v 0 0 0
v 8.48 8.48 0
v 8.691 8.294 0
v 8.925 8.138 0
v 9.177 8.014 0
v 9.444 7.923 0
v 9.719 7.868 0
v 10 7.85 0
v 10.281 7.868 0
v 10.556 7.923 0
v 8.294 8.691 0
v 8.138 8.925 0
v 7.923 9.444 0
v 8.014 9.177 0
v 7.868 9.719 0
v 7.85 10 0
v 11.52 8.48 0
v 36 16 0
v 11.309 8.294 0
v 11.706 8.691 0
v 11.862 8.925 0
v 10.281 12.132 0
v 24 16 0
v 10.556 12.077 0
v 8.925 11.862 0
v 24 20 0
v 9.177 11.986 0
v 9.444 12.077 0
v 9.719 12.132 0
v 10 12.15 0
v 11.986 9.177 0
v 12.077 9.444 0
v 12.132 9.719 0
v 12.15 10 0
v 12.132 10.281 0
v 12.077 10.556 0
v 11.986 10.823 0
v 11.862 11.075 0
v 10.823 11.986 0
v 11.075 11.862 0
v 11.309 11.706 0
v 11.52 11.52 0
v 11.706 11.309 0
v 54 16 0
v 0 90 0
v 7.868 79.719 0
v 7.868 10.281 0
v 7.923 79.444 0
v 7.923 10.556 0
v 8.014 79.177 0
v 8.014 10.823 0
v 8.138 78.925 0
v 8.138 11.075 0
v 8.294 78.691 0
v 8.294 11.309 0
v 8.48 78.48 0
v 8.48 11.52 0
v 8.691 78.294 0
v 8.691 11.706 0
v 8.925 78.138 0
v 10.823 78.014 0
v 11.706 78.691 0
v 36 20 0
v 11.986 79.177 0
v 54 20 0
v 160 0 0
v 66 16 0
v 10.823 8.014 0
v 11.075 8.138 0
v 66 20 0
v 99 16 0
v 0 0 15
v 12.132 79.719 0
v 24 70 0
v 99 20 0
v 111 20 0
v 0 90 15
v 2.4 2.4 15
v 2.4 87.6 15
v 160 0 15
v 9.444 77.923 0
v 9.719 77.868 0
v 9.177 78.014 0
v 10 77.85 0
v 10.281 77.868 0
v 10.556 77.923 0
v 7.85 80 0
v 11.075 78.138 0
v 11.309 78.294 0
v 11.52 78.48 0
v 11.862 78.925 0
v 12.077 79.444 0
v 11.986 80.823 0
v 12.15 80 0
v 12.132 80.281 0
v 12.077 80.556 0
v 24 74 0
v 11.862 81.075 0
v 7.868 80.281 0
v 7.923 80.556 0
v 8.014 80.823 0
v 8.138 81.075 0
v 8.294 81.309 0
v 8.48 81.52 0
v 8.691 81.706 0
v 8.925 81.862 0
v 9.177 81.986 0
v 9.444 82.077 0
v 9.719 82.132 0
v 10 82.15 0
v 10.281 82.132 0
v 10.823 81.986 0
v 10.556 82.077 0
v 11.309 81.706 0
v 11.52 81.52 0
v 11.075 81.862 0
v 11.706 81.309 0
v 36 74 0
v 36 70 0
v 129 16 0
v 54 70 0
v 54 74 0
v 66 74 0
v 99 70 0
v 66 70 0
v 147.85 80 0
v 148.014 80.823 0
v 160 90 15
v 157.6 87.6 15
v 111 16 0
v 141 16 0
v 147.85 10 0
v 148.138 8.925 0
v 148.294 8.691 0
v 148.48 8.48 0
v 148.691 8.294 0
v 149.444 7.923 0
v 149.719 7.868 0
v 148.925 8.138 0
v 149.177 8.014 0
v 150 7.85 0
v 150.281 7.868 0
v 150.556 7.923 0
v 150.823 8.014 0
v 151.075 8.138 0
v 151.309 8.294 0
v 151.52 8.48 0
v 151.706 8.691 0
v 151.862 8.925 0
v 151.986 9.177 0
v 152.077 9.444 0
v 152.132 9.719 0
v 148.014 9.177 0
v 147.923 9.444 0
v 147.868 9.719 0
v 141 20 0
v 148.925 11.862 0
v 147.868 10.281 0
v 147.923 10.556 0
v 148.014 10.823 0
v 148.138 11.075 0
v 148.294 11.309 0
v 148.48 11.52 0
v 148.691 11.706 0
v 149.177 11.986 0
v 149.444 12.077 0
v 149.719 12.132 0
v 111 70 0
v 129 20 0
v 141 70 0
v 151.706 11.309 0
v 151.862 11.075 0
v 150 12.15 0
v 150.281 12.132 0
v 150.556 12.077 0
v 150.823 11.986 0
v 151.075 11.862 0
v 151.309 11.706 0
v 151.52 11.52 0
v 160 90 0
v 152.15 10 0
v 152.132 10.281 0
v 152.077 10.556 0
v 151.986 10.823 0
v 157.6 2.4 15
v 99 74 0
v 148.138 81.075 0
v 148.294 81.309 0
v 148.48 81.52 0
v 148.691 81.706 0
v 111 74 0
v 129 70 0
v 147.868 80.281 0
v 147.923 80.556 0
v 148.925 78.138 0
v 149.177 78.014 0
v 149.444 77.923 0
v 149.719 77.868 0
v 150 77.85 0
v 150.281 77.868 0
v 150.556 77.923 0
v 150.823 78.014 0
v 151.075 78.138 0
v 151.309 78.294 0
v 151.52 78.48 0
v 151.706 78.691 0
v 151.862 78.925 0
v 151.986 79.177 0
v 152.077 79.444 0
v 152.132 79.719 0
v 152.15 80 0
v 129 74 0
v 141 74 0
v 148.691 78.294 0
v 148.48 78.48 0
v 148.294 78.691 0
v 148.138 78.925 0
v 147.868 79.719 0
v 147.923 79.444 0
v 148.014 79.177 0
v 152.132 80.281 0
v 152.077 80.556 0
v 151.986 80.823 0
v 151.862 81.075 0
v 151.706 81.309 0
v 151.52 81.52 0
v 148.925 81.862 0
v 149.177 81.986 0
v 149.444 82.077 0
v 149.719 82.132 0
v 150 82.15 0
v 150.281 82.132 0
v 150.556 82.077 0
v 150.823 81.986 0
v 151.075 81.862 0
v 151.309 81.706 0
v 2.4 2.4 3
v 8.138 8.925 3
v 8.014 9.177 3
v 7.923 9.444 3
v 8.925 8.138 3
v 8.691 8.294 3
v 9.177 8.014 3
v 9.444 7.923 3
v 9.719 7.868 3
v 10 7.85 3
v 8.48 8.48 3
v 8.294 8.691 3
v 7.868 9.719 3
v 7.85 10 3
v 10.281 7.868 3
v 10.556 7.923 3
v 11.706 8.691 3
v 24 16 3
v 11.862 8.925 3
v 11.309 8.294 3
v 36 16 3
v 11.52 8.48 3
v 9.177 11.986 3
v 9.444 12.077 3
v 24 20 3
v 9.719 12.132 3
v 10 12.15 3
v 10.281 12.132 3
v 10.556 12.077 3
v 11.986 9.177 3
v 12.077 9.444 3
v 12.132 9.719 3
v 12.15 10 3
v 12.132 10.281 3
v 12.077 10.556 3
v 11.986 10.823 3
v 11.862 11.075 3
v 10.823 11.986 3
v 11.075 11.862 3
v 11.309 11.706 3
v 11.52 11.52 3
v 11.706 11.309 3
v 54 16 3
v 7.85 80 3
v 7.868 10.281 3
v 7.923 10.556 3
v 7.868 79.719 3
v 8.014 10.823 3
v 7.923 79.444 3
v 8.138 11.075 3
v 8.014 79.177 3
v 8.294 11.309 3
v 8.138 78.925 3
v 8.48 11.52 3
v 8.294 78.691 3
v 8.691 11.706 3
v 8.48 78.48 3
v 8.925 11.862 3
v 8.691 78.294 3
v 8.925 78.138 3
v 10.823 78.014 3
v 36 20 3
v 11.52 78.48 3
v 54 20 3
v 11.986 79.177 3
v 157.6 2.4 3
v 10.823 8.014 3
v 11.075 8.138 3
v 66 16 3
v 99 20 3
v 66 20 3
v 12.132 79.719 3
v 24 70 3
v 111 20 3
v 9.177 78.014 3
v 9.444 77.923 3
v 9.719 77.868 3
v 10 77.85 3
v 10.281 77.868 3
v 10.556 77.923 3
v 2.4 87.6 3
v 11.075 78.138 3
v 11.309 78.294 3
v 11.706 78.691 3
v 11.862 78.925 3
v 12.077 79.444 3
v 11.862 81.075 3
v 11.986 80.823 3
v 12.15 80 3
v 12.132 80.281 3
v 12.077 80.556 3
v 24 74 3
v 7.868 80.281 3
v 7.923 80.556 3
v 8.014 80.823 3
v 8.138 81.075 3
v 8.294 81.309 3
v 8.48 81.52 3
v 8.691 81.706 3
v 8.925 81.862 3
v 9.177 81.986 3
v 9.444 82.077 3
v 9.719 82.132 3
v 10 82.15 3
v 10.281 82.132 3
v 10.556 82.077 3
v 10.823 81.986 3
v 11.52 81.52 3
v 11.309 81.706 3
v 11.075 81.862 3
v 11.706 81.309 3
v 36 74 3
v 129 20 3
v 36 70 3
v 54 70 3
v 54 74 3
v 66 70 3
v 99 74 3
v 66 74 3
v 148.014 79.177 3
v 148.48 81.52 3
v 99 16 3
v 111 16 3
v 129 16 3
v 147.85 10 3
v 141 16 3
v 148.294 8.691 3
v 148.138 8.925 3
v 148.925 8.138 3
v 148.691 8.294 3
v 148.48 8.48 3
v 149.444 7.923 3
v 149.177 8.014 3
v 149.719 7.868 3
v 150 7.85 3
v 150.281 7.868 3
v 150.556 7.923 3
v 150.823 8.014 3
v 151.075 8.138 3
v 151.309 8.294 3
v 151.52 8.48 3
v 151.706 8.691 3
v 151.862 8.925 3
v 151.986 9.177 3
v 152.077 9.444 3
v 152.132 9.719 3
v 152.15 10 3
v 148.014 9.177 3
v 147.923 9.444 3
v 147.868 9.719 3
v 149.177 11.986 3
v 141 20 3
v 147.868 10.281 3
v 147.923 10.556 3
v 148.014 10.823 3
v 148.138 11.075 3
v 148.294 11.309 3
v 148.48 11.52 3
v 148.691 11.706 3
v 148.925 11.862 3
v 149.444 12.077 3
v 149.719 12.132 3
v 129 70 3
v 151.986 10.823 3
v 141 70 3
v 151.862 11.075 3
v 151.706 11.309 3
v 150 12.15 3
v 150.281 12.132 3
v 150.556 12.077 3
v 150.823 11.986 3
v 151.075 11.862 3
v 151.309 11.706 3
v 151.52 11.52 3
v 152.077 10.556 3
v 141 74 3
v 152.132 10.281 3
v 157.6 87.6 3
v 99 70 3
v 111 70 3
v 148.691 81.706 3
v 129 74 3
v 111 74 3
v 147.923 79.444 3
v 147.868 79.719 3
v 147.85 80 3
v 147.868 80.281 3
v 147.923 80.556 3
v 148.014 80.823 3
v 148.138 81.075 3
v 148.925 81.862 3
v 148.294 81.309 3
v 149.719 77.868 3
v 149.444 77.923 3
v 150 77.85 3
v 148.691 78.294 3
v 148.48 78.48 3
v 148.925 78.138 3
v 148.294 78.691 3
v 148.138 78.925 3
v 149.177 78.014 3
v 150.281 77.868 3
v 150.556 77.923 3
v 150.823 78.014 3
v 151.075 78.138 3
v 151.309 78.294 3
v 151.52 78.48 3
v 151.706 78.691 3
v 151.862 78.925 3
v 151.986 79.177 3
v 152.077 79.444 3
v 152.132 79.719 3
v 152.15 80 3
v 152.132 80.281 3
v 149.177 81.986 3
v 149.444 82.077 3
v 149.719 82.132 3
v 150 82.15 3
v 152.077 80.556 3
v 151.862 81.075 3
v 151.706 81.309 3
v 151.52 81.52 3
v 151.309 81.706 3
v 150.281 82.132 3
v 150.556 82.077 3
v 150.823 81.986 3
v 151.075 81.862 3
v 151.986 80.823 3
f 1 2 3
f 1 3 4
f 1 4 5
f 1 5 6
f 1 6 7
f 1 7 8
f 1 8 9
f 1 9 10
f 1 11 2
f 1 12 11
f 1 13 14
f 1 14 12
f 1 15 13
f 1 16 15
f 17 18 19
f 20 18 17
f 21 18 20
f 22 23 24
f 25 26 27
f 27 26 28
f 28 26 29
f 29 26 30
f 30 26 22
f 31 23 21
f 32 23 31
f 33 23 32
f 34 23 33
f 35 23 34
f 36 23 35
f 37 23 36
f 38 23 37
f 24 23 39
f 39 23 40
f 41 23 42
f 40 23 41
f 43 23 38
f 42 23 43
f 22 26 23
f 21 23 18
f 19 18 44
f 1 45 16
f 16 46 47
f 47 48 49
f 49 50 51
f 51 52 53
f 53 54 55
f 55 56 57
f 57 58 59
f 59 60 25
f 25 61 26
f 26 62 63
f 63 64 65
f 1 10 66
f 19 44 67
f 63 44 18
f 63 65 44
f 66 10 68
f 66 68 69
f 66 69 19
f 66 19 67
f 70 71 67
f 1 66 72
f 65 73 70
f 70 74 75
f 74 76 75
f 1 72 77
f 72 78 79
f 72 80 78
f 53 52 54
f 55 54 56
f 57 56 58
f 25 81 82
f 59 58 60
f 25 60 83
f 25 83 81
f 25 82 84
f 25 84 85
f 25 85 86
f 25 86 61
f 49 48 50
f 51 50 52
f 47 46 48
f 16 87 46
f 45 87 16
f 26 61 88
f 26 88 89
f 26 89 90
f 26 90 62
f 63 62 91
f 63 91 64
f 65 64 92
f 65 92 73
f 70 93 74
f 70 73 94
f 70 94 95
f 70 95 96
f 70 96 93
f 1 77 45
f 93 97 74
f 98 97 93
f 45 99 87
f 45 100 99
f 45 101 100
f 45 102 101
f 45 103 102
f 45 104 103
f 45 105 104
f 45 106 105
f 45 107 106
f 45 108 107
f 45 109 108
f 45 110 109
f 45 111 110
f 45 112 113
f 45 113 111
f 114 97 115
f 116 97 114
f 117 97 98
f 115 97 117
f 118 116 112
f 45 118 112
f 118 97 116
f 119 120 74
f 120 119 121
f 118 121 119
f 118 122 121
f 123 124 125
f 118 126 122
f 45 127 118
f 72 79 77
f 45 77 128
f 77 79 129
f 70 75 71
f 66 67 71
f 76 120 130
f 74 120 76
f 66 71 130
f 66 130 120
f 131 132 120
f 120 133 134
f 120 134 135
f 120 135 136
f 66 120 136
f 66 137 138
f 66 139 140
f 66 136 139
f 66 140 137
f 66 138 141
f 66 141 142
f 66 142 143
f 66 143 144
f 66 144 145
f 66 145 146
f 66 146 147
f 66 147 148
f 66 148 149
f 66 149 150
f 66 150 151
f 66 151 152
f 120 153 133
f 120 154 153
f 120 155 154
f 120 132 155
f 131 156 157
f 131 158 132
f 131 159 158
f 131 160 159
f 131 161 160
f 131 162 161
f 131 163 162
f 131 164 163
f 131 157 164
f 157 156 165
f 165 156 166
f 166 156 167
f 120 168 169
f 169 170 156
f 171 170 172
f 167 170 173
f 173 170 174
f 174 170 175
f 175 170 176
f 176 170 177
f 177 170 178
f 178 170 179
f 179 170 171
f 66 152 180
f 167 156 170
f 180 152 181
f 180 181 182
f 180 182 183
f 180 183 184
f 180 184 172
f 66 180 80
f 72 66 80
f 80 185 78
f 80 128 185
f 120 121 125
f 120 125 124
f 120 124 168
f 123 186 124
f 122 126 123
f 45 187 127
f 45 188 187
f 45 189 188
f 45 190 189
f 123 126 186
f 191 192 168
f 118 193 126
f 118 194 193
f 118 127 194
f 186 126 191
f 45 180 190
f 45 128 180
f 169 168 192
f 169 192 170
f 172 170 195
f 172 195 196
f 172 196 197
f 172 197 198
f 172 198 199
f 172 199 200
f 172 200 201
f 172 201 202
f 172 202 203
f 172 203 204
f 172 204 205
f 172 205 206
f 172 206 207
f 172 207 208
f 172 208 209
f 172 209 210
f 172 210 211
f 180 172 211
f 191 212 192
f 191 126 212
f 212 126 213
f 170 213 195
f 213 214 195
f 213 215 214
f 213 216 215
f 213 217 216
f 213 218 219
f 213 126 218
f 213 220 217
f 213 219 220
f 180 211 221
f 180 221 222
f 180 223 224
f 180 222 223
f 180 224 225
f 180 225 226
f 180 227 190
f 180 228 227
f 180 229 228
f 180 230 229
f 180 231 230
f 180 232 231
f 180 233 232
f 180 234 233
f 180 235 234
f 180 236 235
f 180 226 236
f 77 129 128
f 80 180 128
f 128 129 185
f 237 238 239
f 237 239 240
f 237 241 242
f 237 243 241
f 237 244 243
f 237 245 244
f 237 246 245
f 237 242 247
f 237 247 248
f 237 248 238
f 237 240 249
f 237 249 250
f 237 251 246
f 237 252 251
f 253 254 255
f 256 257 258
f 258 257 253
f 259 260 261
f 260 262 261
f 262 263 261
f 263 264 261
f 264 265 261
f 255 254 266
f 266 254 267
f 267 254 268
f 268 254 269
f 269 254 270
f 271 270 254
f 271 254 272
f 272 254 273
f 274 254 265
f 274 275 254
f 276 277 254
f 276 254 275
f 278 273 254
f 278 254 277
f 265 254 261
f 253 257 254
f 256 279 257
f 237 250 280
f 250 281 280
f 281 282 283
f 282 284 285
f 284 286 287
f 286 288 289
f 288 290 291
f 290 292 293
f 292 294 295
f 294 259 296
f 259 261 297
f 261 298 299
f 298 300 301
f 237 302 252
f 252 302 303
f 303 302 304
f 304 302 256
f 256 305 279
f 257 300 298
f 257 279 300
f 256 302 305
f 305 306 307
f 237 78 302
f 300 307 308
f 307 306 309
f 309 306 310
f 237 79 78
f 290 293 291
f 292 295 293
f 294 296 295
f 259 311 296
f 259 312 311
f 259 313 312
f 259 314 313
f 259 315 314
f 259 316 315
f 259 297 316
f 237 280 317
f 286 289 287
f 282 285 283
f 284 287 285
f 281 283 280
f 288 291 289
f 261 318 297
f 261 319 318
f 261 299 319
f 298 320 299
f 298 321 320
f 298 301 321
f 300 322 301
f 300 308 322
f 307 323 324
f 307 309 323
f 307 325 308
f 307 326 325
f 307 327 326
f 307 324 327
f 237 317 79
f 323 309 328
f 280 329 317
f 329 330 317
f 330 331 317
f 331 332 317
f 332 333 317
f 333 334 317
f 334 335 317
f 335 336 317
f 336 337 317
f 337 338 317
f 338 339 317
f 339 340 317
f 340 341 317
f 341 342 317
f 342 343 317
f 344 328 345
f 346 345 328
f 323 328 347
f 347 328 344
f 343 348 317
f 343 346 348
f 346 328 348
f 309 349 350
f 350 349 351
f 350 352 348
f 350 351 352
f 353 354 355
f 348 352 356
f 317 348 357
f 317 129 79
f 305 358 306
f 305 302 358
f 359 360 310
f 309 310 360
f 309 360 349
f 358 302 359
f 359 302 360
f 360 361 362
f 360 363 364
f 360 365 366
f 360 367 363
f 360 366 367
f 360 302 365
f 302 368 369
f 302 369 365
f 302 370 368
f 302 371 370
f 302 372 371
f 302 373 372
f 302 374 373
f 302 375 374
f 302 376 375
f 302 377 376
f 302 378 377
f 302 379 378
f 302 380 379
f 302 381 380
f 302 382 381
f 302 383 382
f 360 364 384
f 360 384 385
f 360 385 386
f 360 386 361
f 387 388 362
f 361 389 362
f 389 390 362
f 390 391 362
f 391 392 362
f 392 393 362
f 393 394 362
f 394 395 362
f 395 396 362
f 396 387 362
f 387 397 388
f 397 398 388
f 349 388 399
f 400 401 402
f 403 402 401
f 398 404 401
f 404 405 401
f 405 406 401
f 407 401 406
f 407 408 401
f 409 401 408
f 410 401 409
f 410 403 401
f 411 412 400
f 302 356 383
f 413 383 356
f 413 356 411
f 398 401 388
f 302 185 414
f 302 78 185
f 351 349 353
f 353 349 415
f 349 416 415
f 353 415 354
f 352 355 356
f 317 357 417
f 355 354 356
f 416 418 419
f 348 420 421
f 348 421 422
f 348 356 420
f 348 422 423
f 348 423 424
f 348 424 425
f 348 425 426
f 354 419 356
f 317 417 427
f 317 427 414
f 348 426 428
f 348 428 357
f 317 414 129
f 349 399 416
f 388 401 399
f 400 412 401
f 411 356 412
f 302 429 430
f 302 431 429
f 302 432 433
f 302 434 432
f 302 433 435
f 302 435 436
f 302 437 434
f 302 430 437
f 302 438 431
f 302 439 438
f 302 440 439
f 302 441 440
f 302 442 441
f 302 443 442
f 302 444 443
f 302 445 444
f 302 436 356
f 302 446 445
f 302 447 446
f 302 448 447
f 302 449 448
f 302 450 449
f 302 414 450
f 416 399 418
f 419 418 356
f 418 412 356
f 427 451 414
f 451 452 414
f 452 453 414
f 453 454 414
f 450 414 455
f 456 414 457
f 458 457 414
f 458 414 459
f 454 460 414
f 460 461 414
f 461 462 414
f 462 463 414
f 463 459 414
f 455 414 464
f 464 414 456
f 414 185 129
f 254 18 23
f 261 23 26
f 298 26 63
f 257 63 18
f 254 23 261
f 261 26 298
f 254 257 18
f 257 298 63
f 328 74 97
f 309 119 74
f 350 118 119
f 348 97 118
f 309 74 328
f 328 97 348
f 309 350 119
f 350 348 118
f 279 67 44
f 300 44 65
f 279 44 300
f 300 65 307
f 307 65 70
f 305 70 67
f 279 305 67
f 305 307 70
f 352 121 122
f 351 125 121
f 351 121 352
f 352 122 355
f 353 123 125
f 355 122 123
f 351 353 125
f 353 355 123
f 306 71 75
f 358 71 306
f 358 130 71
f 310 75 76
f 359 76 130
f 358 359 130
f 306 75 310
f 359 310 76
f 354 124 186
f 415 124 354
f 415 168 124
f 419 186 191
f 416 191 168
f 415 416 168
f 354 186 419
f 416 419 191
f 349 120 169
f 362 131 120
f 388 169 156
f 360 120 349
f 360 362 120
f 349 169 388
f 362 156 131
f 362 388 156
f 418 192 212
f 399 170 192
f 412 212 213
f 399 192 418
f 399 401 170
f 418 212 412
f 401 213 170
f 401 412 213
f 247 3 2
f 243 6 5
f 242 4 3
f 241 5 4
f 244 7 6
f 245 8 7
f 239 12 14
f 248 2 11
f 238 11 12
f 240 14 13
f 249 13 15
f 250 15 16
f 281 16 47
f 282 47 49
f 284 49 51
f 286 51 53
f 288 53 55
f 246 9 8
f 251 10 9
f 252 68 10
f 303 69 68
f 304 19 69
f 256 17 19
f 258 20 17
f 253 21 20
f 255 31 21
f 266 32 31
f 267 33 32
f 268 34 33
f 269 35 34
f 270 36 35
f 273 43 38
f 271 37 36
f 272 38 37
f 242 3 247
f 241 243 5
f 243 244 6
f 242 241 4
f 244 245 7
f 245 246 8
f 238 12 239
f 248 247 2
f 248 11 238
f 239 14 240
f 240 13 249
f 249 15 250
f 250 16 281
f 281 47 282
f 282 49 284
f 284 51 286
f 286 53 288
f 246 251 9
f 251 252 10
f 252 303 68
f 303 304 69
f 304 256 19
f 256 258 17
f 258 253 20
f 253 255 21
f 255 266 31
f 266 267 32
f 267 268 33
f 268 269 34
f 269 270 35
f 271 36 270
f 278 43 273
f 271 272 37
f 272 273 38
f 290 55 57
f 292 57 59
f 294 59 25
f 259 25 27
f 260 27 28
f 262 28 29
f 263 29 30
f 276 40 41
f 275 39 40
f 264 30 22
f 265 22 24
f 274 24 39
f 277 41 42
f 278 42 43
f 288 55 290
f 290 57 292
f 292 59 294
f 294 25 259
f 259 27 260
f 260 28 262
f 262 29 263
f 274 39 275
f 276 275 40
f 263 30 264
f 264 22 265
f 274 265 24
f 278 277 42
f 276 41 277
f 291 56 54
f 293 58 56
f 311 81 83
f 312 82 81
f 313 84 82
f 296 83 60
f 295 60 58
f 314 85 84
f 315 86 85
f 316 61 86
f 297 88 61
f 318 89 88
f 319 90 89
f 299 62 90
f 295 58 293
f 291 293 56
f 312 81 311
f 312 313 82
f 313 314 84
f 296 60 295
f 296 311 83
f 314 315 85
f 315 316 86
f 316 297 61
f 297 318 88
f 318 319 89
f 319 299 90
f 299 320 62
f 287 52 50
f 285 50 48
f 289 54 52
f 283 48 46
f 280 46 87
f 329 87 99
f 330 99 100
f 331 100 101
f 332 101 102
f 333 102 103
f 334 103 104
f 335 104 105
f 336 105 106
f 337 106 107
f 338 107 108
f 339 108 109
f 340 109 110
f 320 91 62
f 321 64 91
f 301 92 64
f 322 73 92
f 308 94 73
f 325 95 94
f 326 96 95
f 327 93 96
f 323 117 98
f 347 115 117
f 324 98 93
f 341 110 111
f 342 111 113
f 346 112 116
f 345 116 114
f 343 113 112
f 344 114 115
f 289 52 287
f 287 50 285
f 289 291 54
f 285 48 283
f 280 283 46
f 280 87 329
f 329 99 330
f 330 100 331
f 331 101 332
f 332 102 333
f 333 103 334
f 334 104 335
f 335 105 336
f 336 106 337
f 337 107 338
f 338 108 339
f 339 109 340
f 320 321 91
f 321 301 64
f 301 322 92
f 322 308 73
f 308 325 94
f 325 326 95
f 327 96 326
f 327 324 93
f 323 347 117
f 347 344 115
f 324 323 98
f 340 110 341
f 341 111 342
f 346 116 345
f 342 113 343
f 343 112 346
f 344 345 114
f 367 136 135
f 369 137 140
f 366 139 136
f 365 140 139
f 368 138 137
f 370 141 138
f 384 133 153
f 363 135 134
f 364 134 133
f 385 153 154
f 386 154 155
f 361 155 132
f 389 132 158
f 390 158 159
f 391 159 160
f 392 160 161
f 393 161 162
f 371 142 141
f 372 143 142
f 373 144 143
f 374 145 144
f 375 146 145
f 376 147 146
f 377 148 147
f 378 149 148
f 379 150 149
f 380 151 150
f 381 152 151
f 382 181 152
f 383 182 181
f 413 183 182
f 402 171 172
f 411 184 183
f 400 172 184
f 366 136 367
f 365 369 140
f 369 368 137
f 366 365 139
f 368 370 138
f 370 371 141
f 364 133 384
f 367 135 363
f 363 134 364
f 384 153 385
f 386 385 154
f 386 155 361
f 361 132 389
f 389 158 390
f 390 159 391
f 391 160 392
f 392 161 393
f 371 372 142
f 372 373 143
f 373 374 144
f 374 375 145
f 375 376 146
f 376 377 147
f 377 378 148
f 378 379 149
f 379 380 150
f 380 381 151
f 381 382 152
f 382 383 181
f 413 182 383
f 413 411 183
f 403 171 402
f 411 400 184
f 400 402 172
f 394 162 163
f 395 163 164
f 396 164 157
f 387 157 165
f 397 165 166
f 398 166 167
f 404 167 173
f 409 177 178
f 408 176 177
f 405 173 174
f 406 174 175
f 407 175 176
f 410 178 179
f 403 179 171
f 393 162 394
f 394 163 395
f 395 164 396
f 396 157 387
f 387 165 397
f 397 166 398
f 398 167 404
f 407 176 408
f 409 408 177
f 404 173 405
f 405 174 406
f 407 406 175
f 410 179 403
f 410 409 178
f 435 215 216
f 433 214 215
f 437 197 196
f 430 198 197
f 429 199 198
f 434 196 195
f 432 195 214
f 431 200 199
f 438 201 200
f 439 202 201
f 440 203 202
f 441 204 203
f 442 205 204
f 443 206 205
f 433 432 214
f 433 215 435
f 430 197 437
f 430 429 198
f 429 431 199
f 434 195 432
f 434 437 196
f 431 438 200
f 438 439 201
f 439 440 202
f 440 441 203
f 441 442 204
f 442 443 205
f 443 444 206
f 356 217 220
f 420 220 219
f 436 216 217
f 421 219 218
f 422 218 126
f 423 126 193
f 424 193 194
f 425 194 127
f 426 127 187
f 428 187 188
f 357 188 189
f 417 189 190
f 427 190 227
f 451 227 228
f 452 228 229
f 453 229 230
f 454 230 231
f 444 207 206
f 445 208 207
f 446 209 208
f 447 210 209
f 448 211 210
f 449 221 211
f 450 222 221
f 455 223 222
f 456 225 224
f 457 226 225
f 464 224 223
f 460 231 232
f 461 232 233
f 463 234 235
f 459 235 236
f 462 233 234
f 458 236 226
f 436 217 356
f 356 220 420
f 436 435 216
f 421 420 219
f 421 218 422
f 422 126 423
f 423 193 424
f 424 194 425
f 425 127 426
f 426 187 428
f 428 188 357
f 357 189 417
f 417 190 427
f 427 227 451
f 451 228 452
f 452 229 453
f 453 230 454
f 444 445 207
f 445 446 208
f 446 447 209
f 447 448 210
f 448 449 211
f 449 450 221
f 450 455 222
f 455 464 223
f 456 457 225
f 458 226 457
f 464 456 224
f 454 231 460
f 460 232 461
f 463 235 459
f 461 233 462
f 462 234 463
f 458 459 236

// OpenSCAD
// Drip tray that holds the heat exchanger + tank-loop pump.
// The raised rim catches small leaks so water stays away from the PC.
tray_l   = 160;   // length (mm)
tray_w   = 90;    // width (mm)
floor_t  = 3;     // floor thickness (mm)
rim_h    = 12;    // rim height (mm) – holds ~ tray_l*tray_w*rim_h/1e6 L = ~0.17 L
rim_t    = 2.4;   // rim wall thickness (mm)
slot_l   = 12;    // zip-tie slot length (mm)
slot_w   = 4;     // zip-tie slot width (mm)
screw_d  = 4.3;   // M4 mounting holes
$fn = 48;

difference() {
  cube([tray_l, tray_w, floor_t + rim_h]);
  translate([rim_t, rim_t, floor_t]) cube([tray_l - 2*rim_t, tray_w - 2*rim_t, rim_h + 1]);
  // zip-tie slots: left half = heat exchanger, right half = pump
  for (x = [30, 60, 105, 135]) for (y = [18, tray_w - 18])
    translate([x - slot_l/2, y - slot_w/2, -1]) cube([slot_l, slot_w, floor_t + 2]);
  // corner screw holes
  for (x = [10, tray_l - 10]) for (y = [10, tray_w - 10])
    translate([x, y, -1]) cylinder(d = screw_d, h = floor_t + 2);
}
